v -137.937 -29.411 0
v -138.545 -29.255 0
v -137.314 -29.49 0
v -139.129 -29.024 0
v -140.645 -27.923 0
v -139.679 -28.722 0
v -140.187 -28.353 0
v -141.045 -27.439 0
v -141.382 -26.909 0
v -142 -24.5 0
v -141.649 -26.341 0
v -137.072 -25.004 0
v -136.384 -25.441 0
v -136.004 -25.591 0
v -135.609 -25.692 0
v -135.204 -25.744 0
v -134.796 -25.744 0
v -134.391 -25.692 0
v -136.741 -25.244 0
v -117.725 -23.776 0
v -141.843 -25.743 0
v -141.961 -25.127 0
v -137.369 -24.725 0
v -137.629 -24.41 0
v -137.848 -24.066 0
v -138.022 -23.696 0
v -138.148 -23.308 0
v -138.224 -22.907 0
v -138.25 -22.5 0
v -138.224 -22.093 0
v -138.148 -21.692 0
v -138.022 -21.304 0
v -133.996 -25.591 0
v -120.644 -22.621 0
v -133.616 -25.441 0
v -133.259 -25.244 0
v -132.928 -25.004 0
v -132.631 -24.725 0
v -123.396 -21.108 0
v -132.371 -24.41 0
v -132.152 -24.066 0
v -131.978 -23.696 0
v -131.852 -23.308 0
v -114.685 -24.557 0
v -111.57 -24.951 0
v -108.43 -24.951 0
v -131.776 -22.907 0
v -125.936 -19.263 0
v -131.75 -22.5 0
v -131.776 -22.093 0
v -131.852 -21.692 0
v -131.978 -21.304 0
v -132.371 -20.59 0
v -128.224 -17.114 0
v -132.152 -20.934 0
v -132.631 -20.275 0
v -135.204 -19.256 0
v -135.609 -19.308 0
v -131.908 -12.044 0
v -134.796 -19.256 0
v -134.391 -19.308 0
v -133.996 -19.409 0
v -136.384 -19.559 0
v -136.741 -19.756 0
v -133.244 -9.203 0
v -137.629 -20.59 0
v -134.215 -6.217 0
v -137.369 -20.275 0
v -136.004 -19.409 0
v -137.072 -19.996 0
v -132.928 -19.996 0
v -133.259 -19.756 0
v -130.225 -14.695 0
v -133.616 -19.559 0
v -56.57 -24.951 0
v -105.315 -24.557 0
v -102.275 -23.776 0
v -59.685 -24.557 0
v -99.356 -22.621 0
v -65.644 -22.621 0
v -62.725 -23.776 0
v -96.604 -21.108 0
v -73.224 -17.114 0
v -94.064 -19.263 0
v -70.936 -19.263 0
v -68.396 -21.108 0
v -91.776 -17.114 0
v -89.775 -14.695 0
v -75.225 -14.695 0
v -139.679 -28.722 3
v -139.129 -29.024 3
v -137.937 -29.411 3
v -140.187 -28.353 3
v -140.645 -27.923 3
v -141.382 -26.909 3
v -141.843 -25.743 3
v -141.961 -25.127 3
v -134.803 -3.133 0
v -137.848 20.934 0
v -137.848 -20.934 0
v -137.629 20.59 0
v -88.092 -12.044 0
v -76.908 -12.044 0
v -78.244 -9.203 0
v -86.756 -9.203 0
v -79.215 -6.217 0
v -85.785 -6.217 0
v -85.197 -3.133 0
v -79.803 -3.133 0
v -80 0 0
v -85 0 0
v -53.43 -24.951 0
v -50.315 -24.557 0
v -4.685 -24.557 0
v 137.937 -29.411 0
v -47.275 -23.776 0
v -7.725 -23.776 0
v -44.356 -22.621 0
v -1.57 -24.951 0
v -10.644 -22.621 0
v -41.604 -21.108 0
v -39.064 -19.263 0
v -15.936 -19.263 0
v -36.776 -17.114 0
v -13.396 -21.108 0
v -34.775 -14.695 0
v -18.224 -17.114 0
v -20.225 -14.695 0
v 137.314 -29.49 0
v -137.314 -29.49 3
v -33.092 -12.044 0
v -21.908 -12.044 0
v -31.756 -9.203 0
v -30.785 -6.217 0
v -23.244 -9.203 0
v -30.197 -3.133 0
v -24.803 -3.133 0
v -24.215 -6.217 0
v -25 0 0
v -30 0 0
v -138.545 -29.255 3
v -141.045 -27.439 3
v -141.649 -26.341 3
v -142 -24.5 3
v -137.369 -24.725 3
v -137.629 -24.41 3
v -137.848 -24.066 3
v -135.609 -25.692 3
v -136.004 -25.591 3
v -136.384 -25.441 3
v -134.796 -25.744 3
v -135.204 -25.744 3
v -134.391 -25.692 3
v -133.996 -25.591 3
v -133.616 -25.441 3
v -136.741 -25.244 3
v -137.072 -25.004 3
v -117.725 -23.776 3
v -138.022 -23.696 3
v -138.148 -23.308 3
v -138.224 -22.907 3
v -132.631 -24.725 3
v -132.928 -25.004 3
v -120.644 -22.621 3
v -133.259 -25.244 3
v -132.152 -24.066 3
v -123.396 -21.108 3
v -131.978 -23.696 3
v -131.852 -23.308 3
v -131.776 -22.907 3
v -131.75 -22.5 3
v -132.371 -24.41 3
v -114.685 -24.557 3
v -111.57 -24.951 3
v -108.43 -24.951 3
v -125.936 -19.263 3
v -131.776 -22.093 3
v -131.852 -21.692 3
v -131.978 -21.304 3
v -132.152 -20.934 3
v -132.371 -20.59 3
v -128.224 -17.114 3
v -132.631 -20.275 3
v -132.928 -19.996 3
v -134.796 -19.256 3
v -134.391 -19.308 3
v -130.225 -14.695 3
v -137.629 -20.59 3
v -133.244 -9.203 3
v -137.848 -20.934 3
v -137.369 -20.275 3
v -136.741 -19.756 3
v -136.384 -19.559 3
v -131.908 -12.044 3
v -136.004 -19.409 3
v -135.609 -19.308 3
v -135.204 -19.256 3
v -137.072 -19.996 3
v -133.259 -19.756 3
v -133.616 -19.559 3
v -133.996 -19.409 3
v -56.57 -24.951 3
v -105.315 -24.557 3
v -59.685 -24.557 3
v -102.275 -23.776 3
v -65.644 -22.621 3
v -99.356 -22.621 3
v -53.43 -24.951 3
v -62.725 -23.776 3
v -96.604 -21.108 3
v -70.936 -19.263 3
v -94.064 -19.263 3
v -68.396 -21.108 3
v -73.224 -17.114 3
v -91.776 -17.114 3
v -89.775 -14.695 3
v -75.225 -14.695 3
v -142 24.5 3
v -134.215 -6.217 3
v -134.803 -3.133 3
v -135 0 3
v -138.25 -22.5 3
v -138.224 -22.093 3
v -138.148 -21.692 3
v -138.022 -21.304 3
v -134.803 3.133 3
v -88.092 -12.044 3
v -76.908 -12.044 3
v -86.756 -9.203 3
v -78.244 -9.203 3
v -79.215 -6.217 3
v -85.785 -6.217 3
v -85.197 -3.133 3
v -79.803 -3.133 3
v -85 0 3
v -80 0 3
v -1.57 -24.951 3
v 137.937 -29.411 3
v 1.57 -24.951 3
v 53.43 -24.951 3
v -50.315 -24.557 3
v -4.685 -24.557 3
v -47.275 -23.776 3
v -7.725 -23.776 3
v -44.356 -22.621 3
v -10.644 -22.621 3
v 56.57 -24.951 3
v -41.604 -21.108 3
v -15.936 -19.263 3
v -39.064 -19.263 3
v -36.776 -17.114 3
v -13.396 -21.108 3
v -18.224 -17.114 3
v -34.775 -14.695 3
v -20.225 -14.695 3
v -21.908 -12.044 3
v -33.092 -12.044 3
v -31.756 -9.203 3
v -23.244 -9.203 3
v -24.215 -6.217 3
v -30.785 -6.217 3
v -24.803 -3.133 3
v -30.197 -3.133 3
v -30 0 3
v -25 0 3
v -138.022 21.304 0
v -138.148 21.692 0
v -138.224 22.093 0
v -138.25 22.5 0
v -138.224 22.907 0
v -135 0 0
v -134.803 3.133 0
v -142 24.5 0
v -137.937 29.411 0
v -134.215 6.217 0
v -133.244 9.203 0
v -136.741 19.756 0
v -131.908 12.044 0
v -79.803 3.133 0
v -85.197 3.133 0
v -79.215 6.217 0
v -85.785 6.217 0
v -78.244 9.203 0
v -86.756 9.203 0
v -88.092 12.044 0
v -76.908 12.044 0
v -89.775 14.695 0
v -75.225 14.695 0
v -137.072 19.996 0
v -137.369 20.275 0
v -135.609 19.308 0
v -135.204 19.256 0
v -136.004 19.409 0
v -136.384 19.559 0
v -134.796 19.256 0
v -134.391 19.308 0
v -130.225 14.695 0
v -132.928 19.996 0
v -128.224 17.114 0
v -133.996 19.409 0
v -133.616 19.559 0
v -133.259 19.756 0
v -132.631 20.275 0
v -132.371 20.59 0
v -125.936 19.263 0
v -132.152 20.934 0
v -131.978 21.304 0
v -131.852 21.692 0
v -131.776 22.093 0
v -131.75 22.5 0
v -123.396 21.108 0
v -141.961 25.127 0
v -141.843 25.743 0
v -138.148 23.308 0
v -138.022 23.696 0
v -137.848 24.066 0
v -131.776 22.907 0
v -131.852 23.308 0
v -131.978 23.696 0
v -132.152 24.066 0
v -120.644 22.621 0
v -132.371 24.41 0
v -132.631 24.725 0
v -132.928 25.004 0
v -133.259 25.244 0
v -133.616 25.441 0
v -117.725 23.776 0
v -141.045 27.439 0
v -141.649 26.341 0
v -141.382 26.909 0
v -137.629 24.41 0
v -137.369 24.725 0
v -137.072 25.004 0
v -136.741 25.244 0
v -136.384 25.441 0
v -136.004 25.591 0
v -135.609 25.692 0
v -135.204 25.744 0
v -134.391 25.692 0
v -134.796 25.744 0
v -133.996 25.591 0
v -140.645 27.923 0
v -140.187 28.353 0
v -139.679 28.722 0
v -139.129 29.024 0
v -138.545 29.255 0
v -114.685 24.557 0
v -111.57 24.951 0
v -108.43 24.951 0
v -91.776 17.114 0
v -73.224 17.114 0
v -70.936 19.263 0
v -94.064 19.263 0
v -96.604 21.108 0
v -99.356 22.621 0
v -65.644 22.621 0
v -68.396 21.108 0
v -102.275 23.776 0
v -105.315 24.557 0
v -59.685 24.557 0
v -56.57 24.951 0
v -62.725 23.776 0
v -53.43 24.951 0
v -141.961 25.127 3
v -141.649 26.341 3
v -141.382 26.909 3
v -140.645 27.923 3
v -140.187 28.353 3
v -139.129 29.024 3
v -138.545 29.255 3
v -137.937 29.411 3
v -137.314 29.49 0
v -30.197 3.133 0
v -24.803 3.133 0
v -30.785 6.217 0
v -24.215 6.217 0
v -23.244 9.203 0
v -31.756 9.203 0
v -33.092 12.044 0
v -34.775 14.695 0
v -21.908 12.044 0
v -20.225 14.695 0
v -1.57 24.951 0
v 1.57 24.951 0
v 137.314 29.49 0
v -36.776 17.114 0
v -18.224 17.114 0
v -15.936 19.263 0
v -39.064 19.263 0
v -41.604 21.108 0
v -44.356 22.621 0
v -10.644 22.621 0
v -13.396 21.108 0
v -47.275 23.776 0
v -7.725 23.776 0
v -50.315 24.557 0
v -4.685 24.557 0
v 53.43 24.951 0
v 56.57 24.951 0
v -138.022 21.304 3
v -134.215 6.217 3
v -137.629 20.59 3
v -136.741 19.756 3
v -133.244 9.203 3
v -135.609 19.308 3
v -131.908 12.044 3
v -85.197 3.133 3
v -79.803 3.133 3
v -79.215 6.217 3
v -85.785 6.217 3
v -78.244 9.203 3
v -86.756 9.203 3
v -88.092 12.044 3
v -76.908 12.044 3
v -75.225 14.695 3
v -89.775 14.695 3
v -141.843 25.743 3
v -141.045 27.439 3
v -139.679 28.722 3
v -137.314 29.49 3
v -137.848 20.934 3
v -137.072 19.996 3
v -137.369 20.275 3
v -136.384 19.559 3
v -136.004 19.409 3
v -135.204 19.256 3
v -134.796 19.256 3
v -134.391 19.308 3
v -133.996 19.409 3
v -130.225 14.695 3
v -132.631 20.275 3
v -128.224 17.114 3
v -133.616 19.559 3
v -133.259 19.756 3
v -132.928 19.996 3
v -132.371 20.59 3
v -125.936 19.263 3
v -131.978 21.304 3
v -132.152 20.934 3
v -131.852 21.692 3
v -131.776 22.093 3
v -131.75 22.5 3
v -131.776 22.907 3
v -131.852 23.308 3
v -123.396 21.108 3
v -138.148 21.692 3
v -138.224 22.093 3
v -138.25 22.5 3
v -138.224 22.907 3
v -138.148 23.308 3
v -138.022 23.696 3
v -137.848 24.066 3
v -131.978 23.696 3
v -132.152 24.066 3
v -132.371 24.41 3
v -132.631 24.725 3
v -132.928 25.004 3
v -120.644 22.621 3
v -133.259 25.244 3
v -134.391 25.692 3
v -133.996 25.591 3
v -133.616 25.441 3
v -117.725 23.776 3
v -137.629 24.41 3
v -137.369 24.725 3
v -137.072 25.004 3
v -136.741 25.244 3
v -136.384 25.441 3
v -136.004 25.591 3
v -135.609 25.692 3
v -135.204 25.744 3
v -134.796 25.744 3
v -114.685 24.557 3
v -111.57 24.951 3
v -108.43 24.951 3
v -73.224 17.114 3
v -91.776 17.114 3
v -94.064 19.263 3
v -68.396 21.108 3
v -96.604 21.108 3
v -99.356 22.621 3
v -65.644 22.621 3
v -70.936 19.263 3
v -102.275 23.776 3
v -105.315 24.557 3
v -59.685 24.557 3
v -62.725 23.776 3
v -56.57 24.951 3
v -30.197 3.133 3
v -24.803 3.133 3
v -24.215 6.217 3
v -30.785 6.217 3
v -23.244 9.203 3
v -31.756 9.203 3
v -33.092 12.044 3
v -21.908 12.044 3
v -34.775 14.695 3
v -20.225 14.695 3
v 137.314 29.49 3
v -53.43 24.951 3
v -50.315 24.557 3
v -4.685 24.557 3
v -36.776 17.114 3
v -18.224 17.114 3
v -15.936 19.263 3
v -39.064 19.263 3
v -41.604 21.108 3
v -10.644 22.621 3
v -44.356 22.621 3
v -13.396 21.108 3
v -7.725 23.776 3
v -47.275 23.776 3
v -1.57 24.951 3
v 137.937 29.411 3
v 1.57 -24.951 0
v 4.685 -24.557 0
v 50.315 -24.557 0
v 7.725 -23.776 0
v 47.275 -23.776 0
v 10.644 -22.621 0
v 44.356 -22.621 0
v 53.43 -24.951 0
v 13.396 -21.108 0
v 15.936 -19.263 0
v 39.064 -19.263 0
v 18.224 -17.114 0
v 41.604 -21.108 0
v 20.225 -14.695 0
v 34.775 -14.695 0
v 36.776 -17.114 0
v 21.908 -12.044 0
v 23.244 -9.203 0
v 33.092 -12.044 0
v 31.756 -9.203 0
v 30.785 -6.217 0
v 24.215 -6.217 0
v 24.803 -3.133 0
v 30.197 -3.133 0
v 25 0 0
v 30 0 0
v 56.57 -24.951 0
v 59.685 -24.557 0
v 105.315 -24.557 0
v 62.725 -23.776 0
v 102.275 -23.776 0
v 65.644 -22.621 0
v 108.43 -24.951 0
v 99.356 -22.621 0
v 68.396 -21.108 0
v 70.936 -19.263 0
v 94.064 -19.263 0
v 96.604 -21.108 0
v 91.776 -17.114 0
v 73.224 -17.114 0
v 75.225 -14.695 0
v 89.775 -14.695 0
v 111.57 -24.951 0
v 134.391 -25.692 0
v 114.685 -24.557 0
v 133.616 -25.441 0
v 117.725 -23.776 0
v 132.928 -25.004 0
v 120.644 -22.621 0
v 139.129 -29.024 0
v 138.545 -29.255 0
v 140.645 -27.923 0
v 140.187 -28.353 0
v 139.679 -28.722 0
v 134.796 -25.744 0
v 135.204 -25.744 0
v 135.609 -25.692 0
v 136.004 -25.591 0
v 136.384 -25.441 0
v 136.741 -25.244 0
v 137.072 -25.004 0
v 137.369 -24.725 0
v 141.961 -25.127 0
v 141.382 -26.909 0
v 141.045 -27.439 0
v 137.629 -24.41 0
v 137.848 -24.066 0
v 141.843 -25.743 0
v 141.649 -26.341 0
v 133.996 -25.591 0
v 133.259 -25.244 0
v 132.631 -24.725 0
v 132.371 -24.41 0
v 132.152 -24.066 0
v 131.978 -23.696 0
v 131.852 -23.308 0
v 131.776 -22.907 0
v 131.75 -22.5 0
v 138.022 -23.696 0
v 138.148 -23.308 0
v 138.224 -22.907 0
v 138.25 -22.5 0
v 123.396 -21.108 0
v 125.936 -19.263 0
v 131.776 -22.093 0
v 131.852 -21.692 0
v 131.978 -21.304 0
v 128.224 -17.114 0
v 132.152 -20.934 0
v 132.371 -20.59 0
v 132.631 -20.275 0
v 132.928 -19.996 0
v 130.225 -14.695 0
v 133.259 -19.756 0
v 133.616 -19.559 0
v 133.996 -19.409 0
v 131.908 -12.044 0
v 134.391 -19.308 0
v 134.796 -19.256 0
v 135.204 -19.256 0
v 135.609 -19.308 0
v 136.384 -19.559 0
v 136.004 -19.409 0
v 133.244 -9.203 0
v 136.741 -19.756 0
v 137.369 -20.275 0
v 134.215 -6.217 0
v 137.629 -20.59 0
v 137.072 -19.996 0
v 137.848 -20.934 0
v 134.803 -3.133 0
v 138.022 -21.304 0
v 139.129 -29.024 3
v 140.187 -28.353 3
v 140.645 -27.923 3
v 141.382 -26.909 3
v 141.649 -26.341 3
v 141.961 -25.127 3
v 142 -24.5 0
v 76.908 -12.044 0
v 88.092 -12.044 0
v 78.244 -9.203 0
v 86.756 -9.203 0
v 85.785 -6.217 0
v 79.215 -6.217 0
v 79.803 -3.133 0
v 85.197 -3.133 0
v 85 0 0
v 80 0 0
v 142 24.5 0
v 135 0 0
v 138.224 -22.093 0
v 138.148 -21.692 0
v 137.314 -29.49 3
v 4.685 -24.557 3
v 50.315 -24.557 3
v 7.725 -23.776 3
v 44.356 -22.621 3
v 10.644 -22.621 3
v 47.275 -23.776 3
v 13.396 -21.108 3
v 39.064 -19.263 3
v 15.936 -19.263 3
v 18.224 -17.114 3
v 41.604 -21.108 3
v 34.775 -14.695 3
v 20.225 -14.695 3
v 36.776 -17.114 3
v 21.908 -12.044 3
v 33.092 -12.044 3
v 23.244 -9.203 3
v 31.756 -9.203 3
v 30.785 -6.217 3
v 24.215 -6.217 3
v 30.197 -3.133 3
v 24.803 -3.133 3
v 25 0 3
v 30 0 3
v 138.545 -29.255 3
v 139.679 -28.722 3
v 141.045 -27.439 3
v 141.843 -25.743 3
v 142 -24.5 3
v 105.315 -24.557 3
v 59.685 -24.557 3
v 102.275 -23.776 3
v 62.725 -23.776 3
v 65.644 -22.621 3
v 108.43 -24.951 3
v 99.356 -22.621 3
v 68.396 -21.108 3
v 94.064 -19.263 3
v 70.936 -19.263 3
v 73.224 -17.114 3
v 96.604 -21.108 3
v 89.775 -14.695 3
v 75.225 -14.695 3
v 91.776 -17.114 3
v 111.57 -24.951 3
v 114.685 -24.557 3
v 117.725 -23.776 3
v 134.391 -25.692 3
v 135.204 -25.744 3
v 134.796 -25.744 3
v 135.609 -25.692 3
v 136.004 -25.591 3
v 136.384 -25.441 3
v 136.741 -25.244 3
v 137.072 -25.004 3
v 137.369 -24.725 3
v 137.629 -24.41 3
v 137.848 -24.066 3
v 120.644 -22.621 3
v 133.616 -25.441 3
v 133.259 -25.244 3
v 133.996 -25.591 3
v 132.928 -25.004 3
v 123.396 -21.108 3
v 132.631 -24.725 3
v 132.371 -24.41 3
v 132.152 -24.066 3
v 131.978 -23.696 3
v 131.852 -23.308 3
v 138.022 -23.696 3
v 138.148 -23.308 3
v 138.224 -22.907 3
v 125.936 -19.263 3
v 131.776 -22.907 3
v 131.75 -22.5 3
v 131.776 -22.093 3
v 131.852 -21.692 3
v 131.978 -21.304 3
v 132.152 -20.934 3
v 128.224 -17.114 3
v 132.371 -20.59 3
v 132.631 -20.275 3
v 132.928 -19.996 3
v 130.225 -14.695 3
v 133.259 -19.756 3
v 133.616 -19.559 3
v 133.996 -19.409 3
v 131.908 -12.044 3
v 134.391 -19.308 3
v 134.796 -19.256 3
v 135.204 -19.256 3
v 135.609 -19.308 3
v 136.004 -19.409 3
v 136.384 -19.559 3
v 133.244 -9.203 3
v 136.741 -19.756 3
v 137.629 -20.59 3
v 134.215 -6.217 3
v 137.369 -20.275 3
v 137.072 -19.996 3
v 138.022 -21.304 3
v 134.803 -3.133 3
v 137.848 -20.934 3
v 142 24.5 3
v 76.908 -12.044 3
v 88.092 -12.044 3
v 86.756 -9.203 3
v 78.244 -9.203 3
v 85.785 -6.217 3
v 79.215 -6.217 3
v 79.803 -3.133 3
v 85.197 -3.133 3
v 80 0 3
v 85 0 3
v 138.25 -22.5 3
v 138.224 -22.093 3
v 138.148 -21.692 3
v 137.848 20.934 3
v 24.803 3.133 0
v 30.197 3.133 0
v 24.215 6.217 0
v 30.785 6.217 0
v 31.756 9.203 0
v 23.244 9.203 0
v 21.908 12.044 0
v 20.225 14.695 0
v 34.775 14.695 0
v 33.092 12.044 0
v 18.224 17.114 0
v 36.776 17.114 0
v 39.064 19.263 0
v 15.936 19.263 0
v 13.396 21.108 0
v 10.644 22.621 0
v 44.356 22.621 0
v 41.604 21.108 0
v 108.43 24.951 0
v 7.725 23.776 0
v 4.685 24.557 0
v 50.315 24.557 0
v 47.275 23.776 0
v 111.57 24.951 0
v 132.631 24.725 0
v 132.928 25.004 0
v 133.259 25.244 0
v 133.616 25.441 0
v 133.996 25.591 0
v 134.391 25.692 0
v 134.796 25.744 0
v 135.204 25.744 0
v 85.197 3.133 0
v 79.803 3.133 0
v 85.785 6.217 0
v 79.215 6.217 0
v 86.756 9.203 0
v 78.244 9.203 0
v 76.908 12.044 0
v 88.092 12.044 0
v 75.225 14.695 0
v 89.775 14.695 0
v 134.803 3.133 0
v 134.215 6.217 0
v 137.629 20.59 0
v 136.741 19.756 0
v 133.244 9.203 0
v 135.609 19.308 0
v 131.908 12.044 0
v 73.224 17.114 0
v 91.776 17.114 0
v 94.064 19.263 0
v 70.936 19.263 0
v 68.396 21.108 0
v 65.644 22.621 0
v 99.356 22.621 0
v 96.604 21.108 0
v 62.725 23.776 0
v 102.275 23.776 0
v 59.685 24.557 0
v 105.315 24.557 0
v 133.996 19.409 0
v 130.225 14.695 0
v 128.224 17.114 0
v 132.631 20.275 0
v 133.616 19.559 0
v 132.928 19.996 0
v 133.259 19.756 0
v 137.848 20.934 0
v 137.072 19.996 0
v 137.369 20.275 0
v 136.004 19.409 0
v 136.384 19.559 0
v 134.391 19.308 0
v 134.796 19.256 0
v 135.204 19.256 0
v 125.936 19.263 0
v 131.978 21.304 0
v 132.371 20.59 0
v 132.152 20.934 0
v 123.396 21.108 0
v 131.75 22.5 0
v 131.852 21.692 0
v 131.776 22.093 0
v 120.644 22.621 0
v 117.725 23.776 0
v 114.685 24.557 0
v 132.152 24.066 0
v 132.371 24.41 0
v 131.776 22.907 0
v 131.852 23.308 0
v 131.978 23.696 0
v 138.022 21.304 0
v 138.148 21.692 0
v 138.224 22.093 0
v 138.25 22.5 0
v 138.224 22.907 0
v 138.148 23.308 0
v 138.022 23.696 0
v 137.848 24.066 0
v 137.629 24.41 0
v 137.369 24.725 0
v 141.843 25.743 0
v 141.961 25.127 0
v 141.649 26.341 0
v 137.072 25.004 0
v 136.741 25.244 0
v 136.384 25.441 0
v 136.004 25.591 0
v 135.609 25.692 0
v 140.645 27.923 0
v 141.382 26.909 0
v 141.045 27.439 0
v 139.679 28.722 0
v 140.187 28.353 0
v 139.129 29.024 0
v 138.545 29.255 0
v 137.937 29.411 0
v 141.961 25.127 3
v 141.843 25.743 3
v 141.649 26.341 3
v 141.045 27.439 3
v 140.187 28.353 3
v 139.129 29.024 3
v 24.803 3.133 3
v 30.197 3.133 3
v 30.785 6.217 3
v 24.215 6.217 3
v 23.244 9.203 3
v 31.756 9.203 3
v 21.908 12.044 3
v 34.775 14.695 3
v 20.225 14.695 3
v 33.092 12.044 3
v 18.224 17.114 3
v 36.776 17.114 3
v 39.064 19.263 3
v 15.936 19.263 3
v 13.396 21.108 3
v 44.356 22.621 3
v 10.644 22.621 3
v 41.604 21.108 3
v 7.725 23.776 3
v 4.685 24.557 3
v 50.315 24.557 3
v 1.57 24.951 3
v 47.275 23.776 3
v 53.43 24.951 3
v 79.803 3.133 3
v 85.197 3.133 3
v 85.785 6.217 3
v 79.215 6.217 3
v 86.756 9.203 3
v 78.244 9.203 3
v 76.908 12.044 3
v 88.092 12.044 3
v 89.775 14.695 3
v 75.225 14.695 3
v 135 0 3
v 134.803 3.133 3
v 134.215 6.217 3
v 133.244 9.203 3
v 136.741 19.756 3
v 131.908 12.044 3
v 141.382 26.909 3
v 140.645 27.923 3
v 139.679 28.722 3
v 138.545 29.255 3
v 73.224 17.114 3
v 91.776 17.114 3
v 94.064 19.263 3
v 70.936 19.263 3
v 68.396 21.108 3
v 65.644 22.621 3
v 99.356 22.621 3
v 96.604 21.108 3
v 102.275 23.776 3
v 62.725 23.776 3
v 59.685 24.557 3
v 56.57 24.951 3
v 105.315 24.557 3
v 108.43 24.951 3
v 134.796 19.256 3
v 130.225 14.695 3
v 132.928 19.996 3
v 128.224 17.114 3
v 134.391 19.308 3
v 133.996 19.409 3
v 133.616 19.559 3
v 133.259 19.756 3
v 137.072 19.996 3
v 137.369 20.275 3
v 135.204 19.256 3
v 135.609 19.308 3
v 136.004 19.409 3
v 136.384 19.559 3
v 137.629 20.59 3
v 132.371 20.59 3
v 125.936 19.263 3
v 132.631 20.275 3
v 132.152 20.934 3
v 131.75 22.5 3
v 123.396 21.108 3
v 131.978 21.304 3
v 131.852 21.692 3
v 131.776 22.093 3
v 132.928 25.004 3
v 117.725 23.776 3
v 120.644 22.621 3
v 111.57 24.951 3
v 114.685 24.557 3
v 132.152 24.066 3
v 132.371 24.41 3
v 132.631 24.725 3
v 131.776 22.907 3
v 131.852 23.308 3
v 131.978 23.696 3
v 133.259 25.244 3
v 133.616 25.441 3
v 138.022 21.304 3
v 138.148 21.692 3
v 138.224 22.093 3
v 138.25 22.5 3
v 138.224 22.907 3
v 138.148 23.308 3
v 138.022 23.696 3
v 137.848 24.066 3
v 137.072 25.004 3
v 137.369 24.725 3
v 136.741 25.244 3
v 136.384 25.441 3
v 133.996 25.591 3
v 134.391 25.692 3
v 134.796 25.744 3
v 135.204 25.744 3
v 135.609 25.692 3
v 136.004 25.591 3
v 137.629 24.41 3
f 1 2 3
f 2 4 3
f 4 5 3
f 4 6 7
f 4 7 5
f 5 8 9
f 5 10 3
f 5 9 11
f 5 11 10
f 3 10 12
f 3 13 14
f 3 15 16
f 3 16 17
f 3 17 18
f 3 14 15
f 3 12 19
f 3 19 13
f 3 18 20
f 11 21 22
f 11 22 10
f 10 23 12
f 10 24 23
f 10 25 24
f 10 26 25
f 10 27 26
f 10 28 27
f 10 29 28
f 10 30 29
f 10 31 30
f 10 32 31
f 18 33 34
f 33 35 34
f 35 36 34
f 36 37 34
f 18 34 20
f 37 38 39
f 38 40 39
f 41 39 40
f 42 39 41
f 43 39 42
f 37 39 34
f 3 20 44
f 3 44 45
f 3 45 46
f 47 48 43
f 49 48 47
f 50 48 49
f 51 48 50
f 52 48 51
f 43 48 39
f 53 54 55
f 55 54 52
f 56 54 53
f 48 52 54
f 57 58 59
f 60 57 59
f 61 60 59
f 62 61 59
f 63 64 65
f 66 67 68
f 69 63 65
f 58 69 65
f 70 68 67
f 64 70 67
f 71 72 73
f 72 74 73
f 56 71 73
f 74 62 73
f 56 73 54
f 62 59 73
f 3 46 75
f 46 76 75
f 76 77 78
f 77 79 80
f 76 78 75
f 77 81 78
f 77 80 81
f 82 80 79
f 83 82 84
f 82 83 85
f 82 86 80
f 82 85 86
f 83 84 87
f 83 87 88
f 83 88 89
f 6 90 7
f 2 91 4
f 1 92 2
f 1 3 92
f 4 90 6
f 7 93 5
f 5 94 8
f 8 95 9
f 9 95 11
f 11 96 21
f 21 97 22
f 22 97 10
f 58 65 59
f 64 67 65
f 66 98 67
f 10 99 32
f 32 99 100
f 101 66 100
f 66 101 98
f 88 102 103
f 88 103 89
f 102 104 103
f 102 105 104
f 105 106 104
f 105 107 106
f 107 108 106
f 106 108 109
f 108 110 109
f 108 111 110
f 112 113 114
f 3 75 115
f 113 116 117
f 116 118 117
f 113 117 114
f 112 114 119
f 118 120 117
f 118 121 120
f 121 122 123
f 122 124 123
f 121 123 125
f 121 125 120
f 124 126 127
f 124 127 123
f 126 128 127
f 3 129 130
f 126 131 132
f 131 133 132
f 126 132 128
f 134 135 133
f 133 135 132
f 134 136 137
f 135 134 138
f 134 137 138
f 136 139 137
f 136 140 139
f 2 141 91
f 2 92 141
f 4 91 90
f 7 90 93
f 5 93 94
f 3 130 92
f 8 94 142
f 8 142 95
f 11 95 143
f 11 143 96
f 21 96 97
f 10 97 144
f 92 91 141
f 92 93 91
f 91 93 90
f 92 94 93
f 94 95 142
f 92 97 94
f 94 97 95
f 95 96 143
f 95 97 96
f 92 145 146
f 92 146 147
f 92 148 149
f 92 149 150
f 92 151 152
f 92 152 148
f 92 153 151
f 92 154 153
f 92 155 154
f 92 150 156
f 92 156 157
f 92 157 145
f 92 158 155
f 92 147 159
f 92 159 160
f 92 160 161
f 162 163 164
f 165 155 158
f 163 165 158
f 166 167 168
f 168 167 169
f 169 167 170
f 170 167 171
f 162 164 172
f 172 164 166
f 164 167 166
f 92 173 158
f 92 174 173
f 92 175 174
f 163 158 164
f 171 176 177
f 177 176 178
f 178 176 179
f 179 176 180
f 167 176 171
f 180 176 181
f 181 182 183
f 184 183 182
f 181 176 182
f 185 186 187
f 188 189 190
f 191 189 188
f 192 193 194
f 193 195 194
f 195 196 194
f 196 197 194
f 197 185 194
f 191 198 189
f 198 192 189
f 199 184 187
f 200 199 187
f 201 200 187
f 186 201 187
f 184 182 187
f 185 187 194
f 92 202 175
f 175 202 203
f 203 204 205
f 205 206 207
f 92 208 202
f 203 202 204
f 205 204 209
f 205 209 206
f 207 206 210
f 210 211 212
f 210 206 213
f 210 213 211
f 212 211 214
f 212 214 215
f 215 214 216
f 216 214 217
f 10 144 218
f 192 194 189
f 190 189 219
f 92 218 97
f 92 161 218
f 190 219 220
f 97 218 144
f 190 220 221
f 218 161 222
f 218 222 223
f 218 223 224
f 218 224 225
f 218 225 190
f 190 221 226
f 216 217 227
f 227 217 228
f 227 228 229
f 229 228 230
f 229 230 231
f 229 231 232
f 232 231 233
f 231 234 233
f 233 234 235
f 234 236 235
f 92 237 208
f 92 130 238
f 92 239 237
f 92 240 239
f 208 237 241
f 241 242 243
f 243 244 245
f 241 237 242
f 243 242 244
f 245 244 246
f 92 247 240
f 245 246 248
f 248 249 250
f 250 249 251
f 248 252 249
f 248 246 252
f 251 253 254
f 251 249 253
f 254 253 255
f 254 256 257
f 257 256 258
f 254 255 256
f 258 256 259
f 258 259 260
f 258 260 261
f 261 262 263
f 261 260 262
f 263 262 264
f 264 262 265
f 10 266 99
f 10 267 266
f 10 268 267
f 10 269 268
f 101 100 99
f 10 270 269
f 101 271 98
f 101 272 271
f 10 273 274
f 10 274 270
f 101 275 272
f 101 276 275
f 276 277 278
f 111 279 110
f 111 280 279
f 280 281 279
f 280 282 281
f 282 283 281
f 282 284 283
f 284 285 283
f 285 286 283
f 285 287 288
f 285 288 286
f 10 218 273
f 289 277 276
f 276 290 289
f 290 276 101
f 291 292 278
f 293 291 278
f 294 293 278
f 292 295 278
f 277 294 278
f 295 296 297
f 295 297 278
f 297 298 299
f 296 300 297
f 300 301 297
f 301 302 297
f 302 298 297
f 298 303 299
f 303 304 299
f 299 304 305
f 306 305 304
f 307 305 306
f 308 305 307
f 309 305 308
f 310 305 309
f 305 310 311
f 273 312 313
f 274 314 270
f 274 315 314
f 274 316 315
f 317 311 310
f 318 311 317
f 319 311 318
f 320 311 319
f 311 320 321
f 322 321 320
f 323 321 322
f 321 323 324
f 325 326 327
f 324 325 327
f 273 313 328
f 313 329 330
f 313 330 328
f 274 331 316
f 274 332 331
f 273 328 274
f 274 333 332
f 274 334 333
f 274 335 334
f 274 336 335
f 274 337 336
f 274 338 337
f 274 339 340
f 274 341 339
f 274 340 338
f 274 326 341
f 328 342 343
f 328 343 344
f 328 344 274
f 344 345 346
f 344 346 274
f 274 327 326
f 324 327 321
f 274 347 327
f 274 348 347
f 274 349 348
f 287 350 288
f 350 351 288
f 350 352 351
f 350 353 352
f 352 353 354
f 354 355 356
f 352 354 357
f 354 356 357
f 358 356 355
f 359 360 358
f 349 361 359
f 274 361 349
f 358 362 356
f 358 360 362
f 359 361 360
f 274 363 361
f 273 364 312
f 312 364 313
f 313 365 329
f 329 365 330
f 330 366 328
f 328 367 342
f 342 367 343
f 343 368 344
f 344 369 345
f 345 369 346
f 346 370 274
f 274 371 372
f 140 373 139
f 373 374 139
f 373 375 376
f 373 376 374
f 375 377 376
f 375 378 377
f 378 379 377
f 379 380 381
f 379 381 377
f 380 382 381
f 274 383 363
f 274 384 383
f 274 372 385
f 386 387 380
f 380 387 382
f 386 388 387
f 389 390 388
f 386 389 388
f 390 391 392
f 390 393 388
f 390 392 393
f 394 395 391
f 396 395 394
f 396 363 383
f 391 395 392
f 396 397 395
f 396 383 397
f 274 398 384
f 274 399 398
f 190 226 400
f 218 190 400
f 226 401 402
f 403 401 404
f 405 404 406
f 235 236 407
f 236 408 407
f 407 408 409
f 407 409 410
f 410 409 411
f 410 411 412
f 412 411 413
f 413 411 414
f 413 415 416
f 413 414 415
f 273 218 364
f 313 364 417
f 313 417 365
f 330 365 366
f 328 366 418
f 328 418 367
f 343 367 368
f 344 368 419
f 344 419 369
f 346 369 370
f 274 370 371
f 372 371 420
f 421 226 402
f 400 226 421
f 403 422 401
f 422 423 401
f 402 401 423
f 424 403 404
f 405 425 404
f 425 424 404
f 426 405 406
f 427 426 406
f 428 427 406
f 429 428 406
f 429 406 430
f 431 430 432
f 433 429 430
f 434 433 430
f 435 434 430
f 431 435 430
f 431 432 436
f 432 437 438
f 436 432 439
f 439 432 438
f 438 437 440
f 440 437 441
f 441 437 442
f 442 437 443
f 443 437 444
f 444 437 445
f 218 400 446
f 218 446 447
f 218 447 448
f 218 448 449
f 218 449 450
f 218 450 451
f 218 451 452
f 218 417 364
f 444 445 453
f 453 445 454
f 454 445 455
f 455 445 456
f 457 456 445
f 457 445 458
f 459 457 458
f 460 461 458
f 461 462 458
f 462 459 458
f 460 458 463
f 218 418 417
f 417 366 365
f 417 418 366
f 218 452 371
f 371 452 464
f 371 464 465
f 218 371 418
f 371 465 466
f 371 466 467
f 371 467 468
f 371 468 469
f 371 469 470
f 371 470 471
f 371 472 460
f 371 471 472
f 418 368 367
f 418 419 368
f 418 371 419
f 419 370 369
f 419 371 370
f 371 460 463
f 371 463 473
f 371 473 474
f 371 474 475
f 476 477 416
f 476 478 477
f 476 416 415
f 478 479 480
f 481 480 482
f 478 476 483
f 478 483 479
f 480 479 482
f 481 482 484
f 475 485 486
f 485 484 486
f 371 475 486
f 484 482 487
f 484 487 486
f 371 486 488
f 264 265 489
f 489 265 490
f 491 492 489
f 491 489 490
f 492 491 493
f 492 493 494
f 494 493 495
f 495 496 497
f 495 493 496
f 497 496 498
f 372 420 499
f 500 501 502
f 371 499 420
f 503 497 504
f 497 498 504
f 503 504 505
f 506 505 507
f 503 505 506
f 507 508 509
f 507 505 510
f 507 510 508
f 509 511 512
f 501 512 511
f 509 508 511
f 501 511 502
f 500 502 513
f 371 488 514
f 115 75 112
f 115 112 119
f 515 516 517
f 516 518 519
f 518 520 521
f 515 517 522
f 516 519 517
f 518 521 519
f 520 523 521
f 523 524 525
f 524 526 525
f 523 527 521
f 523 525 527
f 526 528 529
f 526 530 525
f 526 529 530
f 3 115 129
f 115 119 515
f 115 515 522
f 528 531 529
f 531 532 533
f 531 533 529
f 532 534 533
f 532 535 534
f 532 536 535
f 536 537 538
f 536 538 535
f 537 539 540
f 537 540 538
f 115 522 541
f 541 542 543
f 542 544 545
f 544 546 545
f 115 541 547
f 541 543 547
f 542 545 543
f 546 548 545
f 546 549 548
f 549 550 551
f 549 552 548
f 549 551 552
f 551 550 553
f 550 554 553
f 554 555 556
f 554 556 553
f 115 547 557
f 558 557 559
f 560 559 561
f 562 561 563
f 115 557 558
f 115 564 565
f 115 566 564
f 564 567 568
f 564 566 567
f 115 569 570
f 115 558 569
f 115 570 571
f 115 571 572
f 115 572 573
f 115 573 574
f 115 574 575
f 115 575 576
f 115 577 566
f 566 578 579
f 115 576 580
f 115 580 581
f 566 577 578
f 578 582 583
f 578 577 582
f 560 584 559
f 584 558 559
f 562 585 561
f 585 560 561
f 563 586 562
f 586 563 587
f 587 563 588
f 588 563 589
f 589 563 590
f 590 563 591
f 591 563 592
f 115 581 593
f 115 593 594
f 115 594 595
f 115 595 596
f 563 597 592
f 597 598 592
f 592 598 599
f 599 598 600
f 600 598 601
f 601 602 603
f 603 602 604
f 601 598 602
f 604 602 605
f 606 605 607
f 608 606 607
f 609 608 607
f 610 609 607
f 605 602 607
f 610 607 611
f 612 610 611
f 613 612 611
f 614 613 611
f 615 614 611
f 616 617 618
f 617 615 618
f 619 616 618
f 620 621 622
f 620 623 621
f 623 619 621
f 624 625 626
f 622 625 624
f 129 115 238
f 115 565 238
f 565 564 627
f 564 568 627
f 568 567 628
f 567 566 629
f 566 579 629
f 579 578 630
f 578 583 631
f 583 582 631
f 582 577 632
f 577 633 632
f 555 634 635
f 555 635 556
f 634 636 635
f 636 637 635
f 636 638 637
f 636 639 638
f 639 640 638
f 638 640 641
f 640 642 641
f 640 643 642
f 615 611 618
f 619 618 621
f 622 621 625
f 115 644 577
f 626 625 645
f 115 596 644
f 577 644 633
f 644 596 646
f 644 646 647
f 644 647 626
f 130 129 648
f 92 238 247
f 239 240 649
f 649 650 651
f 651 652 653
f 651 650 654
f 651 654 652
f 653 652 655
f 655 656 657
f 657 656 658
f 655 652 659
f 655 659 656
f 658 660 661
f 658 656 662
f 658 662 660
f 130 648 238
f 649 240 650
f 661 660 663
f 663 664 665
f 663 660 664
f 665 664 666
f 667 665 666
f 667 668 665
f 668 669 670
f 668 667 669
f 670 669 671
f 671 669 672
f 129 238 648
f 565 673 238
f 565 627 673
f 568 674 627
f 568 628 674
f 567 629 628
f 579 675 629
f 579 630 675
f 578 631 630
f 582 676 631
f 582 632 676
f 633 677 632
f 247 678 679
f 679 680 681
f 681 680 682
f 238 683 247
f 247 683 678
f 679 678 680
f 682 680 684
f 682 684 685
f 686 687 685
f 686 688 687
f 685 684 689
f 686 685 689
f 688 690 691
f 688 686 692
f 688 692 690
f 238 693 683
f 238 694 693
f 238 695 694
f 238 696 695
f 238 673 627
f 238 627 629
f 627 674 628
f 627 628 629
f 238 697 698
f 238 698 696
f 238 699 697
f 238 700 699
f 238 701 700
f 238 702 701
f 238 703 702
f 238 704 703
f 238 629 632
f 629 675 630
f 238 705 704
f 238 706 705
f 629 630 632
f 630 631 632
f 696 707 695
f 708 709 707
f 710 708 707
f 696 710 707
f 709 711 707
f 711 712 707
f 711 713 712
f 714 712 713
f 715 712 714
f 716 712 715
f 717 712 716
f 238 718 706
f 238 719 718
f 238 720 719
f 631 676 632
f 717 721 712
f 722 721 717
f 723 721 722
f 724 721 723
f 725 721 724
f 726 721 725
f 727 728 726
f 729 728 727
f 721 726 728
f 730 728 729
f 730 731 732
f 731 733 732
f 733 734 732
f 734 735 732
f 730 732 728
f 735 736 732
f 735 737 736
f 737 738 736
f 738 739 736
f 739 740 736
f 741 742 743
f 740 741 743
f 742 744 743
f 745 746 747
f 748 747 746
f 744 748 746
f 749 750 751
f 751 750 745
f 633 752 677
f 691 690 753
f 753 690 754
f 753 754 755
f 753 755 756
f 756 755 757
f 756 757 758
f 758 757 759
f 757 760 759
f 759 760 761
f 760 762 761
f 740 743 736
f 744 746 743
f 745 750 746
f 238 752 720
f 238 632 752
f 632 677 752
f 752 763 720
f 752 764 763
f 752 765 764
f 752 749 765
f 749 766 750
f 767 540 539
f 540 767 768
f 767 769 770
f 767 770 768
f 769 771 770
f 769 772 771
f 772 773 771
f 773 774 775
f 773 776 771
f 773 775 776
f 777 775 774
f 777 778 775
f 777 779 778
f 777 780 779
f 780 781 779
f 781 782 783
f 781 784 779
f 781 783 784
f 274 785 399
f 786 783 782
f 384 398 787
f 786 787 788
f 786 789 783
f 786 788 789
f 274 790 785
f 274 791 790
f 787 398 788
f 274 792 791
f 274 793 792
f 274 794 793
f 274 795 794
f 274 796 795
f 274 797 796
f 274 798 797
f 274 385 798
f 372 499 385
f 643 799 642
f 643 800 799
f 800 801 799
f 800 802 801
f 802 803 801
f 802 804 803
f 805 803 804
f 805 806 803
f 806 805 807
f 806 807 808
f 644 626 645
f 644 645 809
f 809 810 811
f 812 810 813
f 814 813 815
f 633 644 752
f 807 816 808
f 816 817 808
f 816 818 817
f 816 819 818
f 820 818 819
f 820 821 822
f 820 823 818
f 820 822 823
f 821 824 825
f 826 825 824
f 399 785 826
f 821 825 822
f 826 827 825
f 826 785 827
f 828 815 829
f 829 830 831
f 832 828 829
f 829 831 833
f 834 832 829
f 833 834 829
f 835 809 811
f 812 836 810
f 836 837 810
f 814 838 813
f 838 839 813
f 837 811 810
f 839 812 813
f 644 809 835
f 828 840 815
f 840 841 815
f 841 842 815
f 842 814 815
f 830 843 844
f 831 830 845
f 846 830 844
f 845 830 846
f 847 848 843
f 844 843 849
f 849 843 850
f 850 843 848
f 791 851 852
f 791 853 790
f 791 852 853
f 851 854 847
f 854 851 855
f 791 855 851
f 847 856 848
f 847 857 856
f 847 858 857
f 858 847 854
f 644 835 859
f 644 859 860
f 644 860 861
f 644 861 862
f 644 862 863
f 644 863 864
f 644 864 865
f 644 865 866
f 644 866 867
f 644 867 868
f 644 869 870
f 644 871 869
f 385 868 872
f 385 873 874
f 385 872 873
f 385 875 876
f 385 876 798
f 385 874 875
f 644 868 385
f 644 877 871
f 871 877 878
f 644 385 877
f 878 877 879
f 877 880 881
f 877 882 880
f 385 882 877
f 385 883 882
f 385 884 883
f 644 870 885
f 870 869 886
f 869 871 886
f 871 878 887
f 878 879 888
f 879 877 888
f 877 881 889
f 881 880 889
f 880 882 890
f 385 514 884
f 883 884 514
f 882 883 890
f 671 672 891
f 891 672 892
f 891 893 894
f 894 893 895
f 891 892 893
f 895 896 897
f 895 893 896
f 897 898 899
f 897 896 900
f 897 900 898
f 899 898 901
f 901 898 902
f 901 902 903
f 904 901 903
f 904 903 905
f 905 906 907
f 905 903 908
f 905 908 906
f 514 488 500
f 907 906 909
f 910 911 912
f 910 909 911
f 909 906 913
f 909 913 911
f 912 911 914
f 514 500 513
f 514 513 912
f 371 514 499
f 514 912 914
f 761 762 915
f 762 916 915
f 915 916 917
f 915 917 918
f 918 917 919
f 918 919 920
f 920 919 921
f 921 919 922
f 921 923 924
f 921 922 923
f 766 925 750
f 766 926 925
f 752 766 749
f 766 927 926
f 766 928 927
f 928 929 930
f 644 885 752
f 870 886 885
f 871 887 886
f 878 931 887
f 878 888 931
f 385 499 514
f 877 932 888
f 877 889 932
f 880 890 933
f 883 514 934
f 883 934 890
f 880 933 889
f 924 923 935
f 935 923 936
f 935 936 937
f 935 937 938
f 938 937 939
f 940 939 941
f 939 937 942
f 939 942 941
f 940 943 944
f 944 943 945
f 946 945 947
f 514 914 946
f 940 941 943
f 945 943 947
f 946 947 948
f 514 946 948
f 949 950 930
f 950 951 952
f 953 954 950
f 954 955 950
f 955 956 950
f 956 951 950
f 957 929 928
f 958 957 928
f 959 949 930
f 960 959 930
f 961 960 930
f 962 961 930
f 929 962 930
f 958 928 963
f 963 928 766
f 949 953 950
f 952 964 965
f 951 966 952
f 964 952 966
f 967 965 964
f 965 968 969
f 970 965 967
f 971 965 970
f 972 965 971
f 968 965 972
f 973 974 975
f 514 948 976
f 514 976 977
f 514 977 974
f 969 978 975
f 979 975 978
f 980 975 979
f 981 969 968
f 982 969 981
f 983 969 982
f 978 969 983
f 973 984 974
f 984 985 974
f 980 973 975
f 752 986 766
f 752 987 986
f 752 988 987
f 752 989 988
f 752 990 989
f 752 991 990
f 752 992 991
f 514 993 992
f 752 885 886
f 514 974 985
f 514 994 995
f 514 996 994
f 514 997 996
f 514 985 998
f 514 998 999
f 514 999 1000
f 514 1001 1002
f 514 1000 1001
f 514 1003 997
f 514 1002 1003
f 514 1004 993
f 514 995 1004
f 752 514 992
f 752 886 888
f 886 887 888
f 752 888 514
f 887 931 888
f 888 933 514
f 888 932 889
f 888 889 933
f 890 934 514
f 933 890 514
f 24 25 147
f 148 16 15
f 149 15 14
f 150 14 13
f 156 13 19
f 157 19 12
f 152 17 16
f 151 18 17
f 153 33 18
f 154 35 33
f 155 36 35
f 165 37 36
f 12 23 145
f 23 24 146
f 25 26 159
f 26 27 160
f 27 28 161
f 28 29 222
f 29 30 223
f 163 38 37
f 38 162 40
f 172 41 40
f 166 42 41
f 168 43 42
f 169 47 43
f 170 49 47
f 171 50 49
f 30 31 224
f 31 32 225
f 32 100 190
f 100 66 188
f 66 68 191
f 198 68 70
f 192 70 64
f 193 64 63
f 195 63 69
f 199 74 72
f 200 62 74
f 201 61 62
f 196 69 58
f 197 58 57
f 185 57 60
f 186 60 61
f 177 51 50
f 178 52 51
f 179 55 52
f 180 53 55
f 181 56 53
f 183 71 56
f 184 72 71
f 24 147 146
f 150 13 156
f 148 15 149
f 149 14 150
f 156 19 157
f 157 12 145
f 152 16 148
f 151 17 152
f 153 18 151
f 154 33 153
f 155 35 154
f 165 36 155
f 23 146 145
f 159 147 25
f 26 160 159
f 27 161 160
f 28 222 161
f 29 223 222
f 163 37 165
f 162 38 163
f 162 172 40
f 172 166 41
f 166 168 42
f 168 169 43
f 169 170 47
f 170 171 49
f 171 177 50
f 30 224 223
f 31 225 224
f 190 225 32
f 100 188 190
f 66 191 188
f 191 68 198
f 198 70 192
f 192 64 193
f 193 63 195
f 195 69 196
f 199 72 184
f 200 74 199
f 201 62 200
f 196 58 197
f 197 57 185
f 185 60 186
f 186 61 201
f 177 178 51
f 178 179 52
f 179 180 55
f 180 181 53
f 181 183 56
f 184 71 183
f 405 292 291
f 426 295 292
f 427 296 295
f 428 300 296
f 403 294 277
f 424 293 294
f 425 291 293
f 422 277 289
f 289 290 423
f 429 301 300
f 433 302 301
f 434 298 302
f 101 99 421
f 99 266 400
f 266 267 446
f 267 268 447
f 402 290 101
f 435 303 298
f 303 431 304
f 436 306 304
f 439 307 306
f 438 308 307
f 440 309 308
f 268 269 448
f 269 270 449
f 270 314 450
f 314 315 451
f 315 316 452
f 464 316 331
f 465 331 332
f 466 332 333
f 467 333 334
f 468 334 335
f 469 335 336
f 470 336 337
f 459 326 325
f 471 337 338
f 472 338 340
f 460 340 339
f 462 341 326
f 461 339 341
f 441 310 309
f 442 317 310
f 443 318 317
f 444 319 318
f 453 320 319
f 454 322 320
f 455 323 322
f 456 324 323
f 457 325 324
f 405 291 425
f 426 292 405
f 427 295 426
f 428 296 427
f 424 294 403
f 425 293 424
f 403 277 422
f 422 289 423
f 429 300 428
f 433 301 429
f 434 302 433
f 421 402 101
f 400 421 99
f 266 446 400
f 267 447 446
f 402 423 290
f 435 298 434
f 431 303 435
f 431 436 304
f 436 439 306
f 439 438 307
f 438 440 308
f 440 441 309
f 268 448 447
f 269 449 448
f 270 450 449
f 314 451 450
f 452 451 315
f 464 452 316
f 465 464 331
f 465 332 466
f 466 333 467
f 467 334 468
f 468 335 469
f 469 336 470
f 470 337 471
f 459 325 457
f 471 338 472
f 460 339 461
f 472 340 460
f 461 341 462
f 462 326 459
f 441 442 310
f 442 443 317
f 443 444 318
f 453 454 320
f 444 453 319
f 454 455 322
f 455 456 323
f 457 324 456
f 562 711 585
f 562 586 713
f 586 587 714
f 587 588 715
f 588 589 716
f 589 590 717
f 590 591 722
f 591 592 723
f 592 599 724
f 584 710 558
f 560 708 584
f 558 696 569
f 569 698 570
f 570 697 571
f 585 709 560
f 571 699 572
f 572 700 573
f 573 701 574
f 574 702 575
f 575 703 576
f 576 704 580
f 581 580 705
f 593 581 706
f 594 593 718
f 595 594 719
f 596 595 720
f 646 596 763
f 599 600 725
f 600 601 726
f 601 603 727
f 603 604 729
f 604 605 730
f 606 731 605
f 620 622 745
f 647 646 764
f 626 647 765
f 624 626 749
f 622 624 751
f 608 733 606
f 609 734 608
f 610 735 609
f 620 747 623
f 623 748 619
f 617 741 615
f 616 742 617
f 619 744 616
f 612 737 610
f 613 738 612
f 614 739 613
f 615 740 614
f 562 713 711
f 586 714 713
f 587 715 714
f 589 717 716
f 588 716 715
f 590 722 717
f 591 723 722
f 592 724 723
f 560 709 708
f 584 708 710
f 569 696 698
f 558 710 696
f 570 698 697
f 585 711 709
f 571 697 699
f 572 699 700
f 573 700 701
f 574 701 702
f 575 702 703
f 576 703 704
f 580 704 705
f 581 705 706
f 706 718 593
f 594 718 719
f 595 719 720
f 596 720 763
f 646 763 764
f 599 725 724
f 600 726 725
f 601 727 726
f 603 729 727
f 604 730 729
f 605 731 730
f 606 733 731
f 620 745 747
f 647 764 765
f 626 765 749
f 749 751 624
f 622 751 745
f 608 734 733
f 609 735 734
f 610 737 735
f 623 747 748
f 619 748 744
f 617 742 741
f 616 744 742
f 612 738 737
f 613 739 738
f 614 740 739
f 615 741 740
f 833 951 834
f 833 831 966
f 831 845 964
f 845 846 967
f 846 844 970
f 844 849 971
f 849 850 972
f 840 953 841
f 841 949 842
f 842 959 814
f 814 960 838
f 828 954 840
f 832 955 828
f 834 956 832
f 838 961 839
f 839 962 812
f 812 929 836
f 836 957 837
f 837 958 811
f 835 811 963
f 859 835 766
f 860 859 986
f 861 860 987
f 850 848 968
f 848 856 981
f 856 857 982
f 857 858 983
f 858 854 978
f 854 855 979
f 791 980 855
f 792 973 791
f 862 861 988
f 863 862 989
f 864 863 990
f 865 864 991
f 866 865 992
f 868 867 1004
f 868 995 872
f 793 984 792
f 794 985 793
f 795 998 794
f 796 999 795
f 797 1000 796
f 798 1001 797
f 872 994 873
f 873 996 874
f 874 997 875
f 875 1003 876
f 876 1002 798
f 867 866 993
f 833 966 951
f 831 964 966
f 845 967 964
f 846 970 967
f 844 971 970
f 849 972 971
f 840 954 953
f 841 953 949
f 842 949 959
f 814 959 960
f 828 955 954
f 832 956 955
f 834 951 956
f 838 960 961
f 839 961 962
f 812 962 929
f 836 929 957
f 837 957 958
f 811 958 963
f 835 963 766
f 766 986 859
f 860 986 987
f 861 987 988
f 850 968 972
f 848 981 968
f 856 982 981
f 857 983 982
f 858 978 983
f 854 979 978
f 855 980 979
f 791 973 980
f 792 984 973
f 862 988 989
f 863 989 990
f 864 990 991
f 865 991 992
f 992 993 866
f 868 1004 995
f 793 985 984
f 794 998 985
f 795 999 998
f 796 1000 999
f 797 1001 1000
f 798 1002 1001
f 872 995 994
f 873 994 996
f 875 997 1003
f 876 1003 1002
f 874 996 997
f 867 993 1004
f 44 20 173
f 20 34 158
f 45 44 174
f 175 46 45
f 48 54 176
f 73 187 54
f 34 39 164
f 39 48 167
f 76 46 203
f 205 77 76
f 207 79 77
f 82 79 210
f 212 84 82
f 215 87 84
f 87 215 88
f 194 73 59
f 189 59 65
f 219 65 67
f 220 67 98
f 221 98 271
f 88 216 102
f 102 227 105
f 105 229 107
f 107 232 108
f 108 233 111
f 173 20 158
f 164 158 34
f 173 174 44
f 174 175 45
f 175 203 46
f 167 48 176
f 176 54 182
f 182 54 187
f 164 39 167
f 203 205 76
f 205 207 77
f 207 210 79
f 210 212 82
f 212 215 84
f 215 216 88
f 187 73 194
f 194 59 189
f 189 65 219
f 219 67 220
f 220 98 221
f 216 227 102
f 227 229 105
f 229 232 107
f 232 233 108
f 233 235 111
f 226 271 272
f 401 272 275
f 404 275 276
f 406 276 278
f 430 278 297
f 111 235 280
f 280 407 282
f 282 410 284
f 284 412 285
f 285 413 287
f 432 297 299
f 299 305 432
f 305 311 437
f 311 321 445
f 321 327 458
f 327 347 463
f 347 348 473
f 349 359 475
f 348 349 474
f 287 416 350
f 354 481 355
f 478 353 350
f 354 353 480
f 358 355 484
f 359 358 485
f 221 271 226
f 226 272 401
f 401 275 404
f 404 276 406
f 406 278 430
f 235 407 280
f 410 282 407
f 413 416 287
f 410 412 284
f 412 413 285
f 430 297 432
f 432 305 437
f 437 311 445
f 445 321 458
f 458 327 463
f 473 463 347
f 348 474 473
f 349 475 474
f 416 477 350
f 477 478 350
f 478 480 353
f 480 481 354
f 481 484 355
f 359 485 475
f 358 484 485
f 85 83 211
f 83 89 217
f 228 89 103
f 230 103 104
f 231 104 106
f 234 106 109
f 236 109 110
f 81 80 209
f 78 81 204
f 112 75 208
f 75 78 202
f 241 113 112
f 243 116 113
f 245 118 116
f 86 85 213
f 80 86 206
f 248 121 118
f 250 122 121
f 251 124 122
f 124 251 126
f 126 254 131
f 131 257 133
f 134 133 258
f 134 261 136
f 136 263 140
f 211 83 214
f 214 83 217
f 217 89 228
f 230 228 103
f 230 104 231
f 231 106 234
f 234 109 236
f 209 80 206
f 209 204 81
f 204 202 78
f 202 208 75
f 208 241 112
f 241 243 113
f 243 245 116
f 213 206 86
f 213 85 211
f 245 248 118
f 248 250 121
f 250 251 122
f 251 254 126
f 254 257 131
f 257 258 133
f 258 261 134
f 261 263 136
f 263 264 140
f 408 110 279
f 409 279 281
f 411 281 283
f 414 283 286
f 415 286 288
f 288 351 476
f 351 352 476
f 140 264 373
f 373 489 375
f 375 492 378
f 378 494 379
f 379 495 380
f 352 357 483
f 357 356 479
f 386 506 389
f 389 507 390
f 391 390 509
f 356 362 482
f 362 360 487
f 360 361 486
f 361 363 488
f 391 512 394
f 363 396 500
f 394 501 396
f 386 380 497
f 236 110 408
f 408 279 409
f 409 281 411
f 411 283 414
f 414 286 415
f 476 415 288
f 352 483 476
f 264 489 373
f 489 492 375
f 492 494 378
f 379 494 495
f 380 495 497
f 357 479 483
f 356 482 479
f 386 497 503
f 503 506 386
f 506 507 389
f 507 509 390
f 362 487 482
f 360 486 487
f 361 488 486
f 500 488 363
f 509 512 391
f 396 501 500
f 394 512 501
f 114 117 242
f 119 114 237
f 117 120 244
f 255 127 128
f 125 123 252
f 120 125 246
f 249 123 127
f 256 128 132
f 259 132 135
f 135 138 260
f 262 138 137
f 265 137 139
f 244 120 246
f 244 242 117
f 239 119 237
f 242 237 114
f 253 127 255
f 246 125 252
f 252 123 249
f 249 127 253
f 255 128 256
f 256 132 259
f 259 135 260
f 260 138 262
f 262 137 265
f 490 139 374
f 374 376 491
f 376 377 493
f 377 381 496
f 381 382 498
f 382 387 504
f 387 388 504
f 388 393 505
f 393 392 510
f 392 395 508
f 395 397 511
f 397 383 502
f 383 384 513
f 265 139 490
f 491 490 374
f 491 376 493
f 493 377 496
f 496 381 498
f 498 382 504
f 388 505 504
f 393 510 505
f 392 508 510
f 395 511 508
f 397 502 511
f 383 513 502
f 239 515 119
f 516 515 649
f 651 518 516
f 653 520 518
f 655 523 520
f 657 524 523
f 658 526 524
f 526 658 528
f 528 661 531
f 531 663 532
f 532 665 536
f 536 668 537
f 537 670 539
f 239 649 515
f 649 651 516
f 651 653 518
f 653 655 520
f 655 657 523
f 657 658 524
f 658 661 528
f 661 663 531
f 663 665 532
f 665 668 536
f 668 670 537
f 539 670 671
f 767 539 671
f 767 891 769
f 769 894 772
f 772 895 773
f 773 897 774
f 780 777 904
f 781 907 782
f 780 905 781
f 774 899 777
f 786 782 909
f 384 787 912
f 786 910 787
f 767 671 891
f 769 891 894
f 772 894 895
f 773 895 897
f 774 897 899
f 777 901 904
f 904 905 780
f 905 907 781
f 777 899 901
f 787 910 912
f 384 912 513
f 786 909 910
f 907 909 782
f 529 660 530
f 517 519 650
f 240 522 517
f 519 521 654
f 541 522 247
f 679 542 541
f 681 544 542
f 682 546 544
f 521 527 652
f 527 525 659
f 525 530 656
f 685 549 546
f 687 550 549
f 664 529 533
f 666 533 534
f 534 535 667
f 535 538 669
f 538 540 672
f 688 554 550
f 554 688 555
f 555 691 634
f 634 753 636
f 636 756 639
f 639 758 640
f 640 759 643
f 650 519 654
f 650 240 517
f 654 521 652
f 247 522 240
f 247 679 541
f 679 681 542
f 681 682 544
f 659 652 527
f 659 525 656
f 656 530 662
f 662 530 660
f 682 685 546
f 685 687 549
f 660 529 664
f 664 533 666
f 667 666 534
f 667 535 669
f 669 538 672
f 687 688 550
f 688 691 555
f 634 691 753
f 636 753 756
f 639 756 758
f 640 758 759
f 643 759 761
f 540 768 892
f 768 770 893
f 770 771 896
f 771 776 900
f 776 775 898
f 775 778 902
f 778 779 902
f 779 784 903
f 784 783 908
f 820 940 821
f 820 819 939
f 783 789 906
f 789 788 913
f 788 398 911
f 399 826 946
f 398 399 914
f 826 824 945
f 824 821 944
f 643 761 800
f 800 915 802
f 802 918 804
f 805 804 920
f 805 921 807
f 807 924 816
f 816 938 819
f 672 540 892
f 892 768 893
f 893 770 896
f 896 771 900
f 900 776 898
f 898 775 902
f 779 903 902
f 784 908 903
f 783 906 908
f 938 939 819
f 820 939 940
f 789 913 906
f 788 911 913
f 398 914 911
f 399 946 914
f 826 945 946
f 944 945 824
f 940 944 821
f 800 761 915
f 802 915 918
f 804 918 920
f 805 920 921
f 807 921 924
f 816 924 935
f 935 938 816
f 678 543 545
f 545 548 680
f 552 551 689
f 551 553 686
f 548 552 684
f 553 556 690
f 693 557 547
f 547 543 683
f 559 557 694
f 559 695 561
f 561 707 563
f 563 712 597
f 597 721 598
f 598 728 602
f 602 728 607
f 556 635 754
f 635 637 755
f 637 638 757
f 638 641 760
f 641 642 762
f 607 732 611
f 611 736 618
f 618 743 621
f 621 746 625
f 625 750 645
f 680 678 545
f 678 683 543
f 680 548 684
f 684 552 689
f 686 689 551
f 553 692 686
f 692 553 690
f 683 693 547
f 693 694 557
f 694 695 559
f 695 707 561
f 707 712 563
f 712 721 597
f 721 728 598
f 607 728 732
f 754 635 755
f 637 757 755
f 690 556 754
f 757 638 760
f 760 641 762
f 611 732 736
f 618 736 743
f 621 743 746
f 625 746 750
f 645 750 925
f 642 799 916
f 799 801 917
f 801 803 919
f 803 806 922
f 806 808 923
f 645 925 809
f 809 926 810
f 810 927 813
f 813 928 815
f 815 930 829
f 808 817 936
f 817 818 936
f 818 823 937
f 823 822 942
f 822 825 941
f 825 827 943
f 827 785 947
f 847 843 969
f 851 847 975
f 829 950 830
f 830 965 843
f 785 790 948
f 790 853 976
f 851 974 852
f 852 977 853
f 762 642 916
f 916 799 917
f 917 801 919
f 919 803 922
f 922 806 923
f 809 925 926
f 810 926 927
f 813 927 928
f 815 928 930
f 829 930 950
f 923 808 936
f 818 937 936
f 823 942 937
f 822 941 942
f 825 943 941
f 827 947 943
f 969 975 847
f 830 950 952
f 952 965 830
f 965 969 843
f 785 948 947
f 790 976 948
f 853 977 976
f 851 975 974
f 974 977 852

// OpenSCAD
$fn = 50;

difference() {
	union() {
		hull() {
			translate(v = [-137.0, 24.5, 0]) {
				cylinder(h = 3, r = 5);
			}
			translate(v = [137.0, 24.5, 0]) {
				cylinder(h = 3, r = 5);
			}
			translate(v = [-137.0, -24.5, 0]) {
				cylinder(h = 3, r = 5);
			}
			translate(v = [137.0, -24.5, 0]) {
				cylinder(h = 3, r = 5);
			}
		}
	}
	union() {
		translate(v = [-135.0, -22.5, -100.0]) {
			cylinder(h = 200, r = 3.25);
		}
		translate(v = [-135.0, 22.5, -100.0]) {
			cylinder(h = 200, r = 3.25);
		}
		translate(v = [135.0, -22.5, -100.0]) {
			cylinder(h = 200, r = 3.25);
		}
		translate(v = [135.0, 22.5, -100.0]) {
			cylinder(h = 200, r = 3.25);
		}
		translate(v = [-135.0, -22.5, -100.0]) {
			cylinder(h = 200, r = 1.8);
		}
		translate(v = [-135.0, 22.5, -100.0]) {
			cylinder(h = 200, r = 1.8);
		}
		translate(v = [135.0, -22.5, -100.0]) {
			cylinder(h = 200, r = 1.8);
		}
		translate(v = [135.0, 22.5, -100.0]) {
			cylinder(h = 200, r = 1.8);
		}
		translate(v = [-110.0, 0, 0.0]) {
			cylinder(h = 3, r = 25.0);
		}
		translate(v = [-55.0, 0, 0.0]) {
			cylinder(h = 3, r = 25.0);
		}
		cylinder(h = 3, r = 25.0);
		translate(v = [55.0, 0, 0.0]) {
			cylinder(h = 3, r = 25.0);
		}
		translate(v = [110.0, 0, 0.0]) {
			cylinder(h = 3, r = 25.0);
		}
	}
}
